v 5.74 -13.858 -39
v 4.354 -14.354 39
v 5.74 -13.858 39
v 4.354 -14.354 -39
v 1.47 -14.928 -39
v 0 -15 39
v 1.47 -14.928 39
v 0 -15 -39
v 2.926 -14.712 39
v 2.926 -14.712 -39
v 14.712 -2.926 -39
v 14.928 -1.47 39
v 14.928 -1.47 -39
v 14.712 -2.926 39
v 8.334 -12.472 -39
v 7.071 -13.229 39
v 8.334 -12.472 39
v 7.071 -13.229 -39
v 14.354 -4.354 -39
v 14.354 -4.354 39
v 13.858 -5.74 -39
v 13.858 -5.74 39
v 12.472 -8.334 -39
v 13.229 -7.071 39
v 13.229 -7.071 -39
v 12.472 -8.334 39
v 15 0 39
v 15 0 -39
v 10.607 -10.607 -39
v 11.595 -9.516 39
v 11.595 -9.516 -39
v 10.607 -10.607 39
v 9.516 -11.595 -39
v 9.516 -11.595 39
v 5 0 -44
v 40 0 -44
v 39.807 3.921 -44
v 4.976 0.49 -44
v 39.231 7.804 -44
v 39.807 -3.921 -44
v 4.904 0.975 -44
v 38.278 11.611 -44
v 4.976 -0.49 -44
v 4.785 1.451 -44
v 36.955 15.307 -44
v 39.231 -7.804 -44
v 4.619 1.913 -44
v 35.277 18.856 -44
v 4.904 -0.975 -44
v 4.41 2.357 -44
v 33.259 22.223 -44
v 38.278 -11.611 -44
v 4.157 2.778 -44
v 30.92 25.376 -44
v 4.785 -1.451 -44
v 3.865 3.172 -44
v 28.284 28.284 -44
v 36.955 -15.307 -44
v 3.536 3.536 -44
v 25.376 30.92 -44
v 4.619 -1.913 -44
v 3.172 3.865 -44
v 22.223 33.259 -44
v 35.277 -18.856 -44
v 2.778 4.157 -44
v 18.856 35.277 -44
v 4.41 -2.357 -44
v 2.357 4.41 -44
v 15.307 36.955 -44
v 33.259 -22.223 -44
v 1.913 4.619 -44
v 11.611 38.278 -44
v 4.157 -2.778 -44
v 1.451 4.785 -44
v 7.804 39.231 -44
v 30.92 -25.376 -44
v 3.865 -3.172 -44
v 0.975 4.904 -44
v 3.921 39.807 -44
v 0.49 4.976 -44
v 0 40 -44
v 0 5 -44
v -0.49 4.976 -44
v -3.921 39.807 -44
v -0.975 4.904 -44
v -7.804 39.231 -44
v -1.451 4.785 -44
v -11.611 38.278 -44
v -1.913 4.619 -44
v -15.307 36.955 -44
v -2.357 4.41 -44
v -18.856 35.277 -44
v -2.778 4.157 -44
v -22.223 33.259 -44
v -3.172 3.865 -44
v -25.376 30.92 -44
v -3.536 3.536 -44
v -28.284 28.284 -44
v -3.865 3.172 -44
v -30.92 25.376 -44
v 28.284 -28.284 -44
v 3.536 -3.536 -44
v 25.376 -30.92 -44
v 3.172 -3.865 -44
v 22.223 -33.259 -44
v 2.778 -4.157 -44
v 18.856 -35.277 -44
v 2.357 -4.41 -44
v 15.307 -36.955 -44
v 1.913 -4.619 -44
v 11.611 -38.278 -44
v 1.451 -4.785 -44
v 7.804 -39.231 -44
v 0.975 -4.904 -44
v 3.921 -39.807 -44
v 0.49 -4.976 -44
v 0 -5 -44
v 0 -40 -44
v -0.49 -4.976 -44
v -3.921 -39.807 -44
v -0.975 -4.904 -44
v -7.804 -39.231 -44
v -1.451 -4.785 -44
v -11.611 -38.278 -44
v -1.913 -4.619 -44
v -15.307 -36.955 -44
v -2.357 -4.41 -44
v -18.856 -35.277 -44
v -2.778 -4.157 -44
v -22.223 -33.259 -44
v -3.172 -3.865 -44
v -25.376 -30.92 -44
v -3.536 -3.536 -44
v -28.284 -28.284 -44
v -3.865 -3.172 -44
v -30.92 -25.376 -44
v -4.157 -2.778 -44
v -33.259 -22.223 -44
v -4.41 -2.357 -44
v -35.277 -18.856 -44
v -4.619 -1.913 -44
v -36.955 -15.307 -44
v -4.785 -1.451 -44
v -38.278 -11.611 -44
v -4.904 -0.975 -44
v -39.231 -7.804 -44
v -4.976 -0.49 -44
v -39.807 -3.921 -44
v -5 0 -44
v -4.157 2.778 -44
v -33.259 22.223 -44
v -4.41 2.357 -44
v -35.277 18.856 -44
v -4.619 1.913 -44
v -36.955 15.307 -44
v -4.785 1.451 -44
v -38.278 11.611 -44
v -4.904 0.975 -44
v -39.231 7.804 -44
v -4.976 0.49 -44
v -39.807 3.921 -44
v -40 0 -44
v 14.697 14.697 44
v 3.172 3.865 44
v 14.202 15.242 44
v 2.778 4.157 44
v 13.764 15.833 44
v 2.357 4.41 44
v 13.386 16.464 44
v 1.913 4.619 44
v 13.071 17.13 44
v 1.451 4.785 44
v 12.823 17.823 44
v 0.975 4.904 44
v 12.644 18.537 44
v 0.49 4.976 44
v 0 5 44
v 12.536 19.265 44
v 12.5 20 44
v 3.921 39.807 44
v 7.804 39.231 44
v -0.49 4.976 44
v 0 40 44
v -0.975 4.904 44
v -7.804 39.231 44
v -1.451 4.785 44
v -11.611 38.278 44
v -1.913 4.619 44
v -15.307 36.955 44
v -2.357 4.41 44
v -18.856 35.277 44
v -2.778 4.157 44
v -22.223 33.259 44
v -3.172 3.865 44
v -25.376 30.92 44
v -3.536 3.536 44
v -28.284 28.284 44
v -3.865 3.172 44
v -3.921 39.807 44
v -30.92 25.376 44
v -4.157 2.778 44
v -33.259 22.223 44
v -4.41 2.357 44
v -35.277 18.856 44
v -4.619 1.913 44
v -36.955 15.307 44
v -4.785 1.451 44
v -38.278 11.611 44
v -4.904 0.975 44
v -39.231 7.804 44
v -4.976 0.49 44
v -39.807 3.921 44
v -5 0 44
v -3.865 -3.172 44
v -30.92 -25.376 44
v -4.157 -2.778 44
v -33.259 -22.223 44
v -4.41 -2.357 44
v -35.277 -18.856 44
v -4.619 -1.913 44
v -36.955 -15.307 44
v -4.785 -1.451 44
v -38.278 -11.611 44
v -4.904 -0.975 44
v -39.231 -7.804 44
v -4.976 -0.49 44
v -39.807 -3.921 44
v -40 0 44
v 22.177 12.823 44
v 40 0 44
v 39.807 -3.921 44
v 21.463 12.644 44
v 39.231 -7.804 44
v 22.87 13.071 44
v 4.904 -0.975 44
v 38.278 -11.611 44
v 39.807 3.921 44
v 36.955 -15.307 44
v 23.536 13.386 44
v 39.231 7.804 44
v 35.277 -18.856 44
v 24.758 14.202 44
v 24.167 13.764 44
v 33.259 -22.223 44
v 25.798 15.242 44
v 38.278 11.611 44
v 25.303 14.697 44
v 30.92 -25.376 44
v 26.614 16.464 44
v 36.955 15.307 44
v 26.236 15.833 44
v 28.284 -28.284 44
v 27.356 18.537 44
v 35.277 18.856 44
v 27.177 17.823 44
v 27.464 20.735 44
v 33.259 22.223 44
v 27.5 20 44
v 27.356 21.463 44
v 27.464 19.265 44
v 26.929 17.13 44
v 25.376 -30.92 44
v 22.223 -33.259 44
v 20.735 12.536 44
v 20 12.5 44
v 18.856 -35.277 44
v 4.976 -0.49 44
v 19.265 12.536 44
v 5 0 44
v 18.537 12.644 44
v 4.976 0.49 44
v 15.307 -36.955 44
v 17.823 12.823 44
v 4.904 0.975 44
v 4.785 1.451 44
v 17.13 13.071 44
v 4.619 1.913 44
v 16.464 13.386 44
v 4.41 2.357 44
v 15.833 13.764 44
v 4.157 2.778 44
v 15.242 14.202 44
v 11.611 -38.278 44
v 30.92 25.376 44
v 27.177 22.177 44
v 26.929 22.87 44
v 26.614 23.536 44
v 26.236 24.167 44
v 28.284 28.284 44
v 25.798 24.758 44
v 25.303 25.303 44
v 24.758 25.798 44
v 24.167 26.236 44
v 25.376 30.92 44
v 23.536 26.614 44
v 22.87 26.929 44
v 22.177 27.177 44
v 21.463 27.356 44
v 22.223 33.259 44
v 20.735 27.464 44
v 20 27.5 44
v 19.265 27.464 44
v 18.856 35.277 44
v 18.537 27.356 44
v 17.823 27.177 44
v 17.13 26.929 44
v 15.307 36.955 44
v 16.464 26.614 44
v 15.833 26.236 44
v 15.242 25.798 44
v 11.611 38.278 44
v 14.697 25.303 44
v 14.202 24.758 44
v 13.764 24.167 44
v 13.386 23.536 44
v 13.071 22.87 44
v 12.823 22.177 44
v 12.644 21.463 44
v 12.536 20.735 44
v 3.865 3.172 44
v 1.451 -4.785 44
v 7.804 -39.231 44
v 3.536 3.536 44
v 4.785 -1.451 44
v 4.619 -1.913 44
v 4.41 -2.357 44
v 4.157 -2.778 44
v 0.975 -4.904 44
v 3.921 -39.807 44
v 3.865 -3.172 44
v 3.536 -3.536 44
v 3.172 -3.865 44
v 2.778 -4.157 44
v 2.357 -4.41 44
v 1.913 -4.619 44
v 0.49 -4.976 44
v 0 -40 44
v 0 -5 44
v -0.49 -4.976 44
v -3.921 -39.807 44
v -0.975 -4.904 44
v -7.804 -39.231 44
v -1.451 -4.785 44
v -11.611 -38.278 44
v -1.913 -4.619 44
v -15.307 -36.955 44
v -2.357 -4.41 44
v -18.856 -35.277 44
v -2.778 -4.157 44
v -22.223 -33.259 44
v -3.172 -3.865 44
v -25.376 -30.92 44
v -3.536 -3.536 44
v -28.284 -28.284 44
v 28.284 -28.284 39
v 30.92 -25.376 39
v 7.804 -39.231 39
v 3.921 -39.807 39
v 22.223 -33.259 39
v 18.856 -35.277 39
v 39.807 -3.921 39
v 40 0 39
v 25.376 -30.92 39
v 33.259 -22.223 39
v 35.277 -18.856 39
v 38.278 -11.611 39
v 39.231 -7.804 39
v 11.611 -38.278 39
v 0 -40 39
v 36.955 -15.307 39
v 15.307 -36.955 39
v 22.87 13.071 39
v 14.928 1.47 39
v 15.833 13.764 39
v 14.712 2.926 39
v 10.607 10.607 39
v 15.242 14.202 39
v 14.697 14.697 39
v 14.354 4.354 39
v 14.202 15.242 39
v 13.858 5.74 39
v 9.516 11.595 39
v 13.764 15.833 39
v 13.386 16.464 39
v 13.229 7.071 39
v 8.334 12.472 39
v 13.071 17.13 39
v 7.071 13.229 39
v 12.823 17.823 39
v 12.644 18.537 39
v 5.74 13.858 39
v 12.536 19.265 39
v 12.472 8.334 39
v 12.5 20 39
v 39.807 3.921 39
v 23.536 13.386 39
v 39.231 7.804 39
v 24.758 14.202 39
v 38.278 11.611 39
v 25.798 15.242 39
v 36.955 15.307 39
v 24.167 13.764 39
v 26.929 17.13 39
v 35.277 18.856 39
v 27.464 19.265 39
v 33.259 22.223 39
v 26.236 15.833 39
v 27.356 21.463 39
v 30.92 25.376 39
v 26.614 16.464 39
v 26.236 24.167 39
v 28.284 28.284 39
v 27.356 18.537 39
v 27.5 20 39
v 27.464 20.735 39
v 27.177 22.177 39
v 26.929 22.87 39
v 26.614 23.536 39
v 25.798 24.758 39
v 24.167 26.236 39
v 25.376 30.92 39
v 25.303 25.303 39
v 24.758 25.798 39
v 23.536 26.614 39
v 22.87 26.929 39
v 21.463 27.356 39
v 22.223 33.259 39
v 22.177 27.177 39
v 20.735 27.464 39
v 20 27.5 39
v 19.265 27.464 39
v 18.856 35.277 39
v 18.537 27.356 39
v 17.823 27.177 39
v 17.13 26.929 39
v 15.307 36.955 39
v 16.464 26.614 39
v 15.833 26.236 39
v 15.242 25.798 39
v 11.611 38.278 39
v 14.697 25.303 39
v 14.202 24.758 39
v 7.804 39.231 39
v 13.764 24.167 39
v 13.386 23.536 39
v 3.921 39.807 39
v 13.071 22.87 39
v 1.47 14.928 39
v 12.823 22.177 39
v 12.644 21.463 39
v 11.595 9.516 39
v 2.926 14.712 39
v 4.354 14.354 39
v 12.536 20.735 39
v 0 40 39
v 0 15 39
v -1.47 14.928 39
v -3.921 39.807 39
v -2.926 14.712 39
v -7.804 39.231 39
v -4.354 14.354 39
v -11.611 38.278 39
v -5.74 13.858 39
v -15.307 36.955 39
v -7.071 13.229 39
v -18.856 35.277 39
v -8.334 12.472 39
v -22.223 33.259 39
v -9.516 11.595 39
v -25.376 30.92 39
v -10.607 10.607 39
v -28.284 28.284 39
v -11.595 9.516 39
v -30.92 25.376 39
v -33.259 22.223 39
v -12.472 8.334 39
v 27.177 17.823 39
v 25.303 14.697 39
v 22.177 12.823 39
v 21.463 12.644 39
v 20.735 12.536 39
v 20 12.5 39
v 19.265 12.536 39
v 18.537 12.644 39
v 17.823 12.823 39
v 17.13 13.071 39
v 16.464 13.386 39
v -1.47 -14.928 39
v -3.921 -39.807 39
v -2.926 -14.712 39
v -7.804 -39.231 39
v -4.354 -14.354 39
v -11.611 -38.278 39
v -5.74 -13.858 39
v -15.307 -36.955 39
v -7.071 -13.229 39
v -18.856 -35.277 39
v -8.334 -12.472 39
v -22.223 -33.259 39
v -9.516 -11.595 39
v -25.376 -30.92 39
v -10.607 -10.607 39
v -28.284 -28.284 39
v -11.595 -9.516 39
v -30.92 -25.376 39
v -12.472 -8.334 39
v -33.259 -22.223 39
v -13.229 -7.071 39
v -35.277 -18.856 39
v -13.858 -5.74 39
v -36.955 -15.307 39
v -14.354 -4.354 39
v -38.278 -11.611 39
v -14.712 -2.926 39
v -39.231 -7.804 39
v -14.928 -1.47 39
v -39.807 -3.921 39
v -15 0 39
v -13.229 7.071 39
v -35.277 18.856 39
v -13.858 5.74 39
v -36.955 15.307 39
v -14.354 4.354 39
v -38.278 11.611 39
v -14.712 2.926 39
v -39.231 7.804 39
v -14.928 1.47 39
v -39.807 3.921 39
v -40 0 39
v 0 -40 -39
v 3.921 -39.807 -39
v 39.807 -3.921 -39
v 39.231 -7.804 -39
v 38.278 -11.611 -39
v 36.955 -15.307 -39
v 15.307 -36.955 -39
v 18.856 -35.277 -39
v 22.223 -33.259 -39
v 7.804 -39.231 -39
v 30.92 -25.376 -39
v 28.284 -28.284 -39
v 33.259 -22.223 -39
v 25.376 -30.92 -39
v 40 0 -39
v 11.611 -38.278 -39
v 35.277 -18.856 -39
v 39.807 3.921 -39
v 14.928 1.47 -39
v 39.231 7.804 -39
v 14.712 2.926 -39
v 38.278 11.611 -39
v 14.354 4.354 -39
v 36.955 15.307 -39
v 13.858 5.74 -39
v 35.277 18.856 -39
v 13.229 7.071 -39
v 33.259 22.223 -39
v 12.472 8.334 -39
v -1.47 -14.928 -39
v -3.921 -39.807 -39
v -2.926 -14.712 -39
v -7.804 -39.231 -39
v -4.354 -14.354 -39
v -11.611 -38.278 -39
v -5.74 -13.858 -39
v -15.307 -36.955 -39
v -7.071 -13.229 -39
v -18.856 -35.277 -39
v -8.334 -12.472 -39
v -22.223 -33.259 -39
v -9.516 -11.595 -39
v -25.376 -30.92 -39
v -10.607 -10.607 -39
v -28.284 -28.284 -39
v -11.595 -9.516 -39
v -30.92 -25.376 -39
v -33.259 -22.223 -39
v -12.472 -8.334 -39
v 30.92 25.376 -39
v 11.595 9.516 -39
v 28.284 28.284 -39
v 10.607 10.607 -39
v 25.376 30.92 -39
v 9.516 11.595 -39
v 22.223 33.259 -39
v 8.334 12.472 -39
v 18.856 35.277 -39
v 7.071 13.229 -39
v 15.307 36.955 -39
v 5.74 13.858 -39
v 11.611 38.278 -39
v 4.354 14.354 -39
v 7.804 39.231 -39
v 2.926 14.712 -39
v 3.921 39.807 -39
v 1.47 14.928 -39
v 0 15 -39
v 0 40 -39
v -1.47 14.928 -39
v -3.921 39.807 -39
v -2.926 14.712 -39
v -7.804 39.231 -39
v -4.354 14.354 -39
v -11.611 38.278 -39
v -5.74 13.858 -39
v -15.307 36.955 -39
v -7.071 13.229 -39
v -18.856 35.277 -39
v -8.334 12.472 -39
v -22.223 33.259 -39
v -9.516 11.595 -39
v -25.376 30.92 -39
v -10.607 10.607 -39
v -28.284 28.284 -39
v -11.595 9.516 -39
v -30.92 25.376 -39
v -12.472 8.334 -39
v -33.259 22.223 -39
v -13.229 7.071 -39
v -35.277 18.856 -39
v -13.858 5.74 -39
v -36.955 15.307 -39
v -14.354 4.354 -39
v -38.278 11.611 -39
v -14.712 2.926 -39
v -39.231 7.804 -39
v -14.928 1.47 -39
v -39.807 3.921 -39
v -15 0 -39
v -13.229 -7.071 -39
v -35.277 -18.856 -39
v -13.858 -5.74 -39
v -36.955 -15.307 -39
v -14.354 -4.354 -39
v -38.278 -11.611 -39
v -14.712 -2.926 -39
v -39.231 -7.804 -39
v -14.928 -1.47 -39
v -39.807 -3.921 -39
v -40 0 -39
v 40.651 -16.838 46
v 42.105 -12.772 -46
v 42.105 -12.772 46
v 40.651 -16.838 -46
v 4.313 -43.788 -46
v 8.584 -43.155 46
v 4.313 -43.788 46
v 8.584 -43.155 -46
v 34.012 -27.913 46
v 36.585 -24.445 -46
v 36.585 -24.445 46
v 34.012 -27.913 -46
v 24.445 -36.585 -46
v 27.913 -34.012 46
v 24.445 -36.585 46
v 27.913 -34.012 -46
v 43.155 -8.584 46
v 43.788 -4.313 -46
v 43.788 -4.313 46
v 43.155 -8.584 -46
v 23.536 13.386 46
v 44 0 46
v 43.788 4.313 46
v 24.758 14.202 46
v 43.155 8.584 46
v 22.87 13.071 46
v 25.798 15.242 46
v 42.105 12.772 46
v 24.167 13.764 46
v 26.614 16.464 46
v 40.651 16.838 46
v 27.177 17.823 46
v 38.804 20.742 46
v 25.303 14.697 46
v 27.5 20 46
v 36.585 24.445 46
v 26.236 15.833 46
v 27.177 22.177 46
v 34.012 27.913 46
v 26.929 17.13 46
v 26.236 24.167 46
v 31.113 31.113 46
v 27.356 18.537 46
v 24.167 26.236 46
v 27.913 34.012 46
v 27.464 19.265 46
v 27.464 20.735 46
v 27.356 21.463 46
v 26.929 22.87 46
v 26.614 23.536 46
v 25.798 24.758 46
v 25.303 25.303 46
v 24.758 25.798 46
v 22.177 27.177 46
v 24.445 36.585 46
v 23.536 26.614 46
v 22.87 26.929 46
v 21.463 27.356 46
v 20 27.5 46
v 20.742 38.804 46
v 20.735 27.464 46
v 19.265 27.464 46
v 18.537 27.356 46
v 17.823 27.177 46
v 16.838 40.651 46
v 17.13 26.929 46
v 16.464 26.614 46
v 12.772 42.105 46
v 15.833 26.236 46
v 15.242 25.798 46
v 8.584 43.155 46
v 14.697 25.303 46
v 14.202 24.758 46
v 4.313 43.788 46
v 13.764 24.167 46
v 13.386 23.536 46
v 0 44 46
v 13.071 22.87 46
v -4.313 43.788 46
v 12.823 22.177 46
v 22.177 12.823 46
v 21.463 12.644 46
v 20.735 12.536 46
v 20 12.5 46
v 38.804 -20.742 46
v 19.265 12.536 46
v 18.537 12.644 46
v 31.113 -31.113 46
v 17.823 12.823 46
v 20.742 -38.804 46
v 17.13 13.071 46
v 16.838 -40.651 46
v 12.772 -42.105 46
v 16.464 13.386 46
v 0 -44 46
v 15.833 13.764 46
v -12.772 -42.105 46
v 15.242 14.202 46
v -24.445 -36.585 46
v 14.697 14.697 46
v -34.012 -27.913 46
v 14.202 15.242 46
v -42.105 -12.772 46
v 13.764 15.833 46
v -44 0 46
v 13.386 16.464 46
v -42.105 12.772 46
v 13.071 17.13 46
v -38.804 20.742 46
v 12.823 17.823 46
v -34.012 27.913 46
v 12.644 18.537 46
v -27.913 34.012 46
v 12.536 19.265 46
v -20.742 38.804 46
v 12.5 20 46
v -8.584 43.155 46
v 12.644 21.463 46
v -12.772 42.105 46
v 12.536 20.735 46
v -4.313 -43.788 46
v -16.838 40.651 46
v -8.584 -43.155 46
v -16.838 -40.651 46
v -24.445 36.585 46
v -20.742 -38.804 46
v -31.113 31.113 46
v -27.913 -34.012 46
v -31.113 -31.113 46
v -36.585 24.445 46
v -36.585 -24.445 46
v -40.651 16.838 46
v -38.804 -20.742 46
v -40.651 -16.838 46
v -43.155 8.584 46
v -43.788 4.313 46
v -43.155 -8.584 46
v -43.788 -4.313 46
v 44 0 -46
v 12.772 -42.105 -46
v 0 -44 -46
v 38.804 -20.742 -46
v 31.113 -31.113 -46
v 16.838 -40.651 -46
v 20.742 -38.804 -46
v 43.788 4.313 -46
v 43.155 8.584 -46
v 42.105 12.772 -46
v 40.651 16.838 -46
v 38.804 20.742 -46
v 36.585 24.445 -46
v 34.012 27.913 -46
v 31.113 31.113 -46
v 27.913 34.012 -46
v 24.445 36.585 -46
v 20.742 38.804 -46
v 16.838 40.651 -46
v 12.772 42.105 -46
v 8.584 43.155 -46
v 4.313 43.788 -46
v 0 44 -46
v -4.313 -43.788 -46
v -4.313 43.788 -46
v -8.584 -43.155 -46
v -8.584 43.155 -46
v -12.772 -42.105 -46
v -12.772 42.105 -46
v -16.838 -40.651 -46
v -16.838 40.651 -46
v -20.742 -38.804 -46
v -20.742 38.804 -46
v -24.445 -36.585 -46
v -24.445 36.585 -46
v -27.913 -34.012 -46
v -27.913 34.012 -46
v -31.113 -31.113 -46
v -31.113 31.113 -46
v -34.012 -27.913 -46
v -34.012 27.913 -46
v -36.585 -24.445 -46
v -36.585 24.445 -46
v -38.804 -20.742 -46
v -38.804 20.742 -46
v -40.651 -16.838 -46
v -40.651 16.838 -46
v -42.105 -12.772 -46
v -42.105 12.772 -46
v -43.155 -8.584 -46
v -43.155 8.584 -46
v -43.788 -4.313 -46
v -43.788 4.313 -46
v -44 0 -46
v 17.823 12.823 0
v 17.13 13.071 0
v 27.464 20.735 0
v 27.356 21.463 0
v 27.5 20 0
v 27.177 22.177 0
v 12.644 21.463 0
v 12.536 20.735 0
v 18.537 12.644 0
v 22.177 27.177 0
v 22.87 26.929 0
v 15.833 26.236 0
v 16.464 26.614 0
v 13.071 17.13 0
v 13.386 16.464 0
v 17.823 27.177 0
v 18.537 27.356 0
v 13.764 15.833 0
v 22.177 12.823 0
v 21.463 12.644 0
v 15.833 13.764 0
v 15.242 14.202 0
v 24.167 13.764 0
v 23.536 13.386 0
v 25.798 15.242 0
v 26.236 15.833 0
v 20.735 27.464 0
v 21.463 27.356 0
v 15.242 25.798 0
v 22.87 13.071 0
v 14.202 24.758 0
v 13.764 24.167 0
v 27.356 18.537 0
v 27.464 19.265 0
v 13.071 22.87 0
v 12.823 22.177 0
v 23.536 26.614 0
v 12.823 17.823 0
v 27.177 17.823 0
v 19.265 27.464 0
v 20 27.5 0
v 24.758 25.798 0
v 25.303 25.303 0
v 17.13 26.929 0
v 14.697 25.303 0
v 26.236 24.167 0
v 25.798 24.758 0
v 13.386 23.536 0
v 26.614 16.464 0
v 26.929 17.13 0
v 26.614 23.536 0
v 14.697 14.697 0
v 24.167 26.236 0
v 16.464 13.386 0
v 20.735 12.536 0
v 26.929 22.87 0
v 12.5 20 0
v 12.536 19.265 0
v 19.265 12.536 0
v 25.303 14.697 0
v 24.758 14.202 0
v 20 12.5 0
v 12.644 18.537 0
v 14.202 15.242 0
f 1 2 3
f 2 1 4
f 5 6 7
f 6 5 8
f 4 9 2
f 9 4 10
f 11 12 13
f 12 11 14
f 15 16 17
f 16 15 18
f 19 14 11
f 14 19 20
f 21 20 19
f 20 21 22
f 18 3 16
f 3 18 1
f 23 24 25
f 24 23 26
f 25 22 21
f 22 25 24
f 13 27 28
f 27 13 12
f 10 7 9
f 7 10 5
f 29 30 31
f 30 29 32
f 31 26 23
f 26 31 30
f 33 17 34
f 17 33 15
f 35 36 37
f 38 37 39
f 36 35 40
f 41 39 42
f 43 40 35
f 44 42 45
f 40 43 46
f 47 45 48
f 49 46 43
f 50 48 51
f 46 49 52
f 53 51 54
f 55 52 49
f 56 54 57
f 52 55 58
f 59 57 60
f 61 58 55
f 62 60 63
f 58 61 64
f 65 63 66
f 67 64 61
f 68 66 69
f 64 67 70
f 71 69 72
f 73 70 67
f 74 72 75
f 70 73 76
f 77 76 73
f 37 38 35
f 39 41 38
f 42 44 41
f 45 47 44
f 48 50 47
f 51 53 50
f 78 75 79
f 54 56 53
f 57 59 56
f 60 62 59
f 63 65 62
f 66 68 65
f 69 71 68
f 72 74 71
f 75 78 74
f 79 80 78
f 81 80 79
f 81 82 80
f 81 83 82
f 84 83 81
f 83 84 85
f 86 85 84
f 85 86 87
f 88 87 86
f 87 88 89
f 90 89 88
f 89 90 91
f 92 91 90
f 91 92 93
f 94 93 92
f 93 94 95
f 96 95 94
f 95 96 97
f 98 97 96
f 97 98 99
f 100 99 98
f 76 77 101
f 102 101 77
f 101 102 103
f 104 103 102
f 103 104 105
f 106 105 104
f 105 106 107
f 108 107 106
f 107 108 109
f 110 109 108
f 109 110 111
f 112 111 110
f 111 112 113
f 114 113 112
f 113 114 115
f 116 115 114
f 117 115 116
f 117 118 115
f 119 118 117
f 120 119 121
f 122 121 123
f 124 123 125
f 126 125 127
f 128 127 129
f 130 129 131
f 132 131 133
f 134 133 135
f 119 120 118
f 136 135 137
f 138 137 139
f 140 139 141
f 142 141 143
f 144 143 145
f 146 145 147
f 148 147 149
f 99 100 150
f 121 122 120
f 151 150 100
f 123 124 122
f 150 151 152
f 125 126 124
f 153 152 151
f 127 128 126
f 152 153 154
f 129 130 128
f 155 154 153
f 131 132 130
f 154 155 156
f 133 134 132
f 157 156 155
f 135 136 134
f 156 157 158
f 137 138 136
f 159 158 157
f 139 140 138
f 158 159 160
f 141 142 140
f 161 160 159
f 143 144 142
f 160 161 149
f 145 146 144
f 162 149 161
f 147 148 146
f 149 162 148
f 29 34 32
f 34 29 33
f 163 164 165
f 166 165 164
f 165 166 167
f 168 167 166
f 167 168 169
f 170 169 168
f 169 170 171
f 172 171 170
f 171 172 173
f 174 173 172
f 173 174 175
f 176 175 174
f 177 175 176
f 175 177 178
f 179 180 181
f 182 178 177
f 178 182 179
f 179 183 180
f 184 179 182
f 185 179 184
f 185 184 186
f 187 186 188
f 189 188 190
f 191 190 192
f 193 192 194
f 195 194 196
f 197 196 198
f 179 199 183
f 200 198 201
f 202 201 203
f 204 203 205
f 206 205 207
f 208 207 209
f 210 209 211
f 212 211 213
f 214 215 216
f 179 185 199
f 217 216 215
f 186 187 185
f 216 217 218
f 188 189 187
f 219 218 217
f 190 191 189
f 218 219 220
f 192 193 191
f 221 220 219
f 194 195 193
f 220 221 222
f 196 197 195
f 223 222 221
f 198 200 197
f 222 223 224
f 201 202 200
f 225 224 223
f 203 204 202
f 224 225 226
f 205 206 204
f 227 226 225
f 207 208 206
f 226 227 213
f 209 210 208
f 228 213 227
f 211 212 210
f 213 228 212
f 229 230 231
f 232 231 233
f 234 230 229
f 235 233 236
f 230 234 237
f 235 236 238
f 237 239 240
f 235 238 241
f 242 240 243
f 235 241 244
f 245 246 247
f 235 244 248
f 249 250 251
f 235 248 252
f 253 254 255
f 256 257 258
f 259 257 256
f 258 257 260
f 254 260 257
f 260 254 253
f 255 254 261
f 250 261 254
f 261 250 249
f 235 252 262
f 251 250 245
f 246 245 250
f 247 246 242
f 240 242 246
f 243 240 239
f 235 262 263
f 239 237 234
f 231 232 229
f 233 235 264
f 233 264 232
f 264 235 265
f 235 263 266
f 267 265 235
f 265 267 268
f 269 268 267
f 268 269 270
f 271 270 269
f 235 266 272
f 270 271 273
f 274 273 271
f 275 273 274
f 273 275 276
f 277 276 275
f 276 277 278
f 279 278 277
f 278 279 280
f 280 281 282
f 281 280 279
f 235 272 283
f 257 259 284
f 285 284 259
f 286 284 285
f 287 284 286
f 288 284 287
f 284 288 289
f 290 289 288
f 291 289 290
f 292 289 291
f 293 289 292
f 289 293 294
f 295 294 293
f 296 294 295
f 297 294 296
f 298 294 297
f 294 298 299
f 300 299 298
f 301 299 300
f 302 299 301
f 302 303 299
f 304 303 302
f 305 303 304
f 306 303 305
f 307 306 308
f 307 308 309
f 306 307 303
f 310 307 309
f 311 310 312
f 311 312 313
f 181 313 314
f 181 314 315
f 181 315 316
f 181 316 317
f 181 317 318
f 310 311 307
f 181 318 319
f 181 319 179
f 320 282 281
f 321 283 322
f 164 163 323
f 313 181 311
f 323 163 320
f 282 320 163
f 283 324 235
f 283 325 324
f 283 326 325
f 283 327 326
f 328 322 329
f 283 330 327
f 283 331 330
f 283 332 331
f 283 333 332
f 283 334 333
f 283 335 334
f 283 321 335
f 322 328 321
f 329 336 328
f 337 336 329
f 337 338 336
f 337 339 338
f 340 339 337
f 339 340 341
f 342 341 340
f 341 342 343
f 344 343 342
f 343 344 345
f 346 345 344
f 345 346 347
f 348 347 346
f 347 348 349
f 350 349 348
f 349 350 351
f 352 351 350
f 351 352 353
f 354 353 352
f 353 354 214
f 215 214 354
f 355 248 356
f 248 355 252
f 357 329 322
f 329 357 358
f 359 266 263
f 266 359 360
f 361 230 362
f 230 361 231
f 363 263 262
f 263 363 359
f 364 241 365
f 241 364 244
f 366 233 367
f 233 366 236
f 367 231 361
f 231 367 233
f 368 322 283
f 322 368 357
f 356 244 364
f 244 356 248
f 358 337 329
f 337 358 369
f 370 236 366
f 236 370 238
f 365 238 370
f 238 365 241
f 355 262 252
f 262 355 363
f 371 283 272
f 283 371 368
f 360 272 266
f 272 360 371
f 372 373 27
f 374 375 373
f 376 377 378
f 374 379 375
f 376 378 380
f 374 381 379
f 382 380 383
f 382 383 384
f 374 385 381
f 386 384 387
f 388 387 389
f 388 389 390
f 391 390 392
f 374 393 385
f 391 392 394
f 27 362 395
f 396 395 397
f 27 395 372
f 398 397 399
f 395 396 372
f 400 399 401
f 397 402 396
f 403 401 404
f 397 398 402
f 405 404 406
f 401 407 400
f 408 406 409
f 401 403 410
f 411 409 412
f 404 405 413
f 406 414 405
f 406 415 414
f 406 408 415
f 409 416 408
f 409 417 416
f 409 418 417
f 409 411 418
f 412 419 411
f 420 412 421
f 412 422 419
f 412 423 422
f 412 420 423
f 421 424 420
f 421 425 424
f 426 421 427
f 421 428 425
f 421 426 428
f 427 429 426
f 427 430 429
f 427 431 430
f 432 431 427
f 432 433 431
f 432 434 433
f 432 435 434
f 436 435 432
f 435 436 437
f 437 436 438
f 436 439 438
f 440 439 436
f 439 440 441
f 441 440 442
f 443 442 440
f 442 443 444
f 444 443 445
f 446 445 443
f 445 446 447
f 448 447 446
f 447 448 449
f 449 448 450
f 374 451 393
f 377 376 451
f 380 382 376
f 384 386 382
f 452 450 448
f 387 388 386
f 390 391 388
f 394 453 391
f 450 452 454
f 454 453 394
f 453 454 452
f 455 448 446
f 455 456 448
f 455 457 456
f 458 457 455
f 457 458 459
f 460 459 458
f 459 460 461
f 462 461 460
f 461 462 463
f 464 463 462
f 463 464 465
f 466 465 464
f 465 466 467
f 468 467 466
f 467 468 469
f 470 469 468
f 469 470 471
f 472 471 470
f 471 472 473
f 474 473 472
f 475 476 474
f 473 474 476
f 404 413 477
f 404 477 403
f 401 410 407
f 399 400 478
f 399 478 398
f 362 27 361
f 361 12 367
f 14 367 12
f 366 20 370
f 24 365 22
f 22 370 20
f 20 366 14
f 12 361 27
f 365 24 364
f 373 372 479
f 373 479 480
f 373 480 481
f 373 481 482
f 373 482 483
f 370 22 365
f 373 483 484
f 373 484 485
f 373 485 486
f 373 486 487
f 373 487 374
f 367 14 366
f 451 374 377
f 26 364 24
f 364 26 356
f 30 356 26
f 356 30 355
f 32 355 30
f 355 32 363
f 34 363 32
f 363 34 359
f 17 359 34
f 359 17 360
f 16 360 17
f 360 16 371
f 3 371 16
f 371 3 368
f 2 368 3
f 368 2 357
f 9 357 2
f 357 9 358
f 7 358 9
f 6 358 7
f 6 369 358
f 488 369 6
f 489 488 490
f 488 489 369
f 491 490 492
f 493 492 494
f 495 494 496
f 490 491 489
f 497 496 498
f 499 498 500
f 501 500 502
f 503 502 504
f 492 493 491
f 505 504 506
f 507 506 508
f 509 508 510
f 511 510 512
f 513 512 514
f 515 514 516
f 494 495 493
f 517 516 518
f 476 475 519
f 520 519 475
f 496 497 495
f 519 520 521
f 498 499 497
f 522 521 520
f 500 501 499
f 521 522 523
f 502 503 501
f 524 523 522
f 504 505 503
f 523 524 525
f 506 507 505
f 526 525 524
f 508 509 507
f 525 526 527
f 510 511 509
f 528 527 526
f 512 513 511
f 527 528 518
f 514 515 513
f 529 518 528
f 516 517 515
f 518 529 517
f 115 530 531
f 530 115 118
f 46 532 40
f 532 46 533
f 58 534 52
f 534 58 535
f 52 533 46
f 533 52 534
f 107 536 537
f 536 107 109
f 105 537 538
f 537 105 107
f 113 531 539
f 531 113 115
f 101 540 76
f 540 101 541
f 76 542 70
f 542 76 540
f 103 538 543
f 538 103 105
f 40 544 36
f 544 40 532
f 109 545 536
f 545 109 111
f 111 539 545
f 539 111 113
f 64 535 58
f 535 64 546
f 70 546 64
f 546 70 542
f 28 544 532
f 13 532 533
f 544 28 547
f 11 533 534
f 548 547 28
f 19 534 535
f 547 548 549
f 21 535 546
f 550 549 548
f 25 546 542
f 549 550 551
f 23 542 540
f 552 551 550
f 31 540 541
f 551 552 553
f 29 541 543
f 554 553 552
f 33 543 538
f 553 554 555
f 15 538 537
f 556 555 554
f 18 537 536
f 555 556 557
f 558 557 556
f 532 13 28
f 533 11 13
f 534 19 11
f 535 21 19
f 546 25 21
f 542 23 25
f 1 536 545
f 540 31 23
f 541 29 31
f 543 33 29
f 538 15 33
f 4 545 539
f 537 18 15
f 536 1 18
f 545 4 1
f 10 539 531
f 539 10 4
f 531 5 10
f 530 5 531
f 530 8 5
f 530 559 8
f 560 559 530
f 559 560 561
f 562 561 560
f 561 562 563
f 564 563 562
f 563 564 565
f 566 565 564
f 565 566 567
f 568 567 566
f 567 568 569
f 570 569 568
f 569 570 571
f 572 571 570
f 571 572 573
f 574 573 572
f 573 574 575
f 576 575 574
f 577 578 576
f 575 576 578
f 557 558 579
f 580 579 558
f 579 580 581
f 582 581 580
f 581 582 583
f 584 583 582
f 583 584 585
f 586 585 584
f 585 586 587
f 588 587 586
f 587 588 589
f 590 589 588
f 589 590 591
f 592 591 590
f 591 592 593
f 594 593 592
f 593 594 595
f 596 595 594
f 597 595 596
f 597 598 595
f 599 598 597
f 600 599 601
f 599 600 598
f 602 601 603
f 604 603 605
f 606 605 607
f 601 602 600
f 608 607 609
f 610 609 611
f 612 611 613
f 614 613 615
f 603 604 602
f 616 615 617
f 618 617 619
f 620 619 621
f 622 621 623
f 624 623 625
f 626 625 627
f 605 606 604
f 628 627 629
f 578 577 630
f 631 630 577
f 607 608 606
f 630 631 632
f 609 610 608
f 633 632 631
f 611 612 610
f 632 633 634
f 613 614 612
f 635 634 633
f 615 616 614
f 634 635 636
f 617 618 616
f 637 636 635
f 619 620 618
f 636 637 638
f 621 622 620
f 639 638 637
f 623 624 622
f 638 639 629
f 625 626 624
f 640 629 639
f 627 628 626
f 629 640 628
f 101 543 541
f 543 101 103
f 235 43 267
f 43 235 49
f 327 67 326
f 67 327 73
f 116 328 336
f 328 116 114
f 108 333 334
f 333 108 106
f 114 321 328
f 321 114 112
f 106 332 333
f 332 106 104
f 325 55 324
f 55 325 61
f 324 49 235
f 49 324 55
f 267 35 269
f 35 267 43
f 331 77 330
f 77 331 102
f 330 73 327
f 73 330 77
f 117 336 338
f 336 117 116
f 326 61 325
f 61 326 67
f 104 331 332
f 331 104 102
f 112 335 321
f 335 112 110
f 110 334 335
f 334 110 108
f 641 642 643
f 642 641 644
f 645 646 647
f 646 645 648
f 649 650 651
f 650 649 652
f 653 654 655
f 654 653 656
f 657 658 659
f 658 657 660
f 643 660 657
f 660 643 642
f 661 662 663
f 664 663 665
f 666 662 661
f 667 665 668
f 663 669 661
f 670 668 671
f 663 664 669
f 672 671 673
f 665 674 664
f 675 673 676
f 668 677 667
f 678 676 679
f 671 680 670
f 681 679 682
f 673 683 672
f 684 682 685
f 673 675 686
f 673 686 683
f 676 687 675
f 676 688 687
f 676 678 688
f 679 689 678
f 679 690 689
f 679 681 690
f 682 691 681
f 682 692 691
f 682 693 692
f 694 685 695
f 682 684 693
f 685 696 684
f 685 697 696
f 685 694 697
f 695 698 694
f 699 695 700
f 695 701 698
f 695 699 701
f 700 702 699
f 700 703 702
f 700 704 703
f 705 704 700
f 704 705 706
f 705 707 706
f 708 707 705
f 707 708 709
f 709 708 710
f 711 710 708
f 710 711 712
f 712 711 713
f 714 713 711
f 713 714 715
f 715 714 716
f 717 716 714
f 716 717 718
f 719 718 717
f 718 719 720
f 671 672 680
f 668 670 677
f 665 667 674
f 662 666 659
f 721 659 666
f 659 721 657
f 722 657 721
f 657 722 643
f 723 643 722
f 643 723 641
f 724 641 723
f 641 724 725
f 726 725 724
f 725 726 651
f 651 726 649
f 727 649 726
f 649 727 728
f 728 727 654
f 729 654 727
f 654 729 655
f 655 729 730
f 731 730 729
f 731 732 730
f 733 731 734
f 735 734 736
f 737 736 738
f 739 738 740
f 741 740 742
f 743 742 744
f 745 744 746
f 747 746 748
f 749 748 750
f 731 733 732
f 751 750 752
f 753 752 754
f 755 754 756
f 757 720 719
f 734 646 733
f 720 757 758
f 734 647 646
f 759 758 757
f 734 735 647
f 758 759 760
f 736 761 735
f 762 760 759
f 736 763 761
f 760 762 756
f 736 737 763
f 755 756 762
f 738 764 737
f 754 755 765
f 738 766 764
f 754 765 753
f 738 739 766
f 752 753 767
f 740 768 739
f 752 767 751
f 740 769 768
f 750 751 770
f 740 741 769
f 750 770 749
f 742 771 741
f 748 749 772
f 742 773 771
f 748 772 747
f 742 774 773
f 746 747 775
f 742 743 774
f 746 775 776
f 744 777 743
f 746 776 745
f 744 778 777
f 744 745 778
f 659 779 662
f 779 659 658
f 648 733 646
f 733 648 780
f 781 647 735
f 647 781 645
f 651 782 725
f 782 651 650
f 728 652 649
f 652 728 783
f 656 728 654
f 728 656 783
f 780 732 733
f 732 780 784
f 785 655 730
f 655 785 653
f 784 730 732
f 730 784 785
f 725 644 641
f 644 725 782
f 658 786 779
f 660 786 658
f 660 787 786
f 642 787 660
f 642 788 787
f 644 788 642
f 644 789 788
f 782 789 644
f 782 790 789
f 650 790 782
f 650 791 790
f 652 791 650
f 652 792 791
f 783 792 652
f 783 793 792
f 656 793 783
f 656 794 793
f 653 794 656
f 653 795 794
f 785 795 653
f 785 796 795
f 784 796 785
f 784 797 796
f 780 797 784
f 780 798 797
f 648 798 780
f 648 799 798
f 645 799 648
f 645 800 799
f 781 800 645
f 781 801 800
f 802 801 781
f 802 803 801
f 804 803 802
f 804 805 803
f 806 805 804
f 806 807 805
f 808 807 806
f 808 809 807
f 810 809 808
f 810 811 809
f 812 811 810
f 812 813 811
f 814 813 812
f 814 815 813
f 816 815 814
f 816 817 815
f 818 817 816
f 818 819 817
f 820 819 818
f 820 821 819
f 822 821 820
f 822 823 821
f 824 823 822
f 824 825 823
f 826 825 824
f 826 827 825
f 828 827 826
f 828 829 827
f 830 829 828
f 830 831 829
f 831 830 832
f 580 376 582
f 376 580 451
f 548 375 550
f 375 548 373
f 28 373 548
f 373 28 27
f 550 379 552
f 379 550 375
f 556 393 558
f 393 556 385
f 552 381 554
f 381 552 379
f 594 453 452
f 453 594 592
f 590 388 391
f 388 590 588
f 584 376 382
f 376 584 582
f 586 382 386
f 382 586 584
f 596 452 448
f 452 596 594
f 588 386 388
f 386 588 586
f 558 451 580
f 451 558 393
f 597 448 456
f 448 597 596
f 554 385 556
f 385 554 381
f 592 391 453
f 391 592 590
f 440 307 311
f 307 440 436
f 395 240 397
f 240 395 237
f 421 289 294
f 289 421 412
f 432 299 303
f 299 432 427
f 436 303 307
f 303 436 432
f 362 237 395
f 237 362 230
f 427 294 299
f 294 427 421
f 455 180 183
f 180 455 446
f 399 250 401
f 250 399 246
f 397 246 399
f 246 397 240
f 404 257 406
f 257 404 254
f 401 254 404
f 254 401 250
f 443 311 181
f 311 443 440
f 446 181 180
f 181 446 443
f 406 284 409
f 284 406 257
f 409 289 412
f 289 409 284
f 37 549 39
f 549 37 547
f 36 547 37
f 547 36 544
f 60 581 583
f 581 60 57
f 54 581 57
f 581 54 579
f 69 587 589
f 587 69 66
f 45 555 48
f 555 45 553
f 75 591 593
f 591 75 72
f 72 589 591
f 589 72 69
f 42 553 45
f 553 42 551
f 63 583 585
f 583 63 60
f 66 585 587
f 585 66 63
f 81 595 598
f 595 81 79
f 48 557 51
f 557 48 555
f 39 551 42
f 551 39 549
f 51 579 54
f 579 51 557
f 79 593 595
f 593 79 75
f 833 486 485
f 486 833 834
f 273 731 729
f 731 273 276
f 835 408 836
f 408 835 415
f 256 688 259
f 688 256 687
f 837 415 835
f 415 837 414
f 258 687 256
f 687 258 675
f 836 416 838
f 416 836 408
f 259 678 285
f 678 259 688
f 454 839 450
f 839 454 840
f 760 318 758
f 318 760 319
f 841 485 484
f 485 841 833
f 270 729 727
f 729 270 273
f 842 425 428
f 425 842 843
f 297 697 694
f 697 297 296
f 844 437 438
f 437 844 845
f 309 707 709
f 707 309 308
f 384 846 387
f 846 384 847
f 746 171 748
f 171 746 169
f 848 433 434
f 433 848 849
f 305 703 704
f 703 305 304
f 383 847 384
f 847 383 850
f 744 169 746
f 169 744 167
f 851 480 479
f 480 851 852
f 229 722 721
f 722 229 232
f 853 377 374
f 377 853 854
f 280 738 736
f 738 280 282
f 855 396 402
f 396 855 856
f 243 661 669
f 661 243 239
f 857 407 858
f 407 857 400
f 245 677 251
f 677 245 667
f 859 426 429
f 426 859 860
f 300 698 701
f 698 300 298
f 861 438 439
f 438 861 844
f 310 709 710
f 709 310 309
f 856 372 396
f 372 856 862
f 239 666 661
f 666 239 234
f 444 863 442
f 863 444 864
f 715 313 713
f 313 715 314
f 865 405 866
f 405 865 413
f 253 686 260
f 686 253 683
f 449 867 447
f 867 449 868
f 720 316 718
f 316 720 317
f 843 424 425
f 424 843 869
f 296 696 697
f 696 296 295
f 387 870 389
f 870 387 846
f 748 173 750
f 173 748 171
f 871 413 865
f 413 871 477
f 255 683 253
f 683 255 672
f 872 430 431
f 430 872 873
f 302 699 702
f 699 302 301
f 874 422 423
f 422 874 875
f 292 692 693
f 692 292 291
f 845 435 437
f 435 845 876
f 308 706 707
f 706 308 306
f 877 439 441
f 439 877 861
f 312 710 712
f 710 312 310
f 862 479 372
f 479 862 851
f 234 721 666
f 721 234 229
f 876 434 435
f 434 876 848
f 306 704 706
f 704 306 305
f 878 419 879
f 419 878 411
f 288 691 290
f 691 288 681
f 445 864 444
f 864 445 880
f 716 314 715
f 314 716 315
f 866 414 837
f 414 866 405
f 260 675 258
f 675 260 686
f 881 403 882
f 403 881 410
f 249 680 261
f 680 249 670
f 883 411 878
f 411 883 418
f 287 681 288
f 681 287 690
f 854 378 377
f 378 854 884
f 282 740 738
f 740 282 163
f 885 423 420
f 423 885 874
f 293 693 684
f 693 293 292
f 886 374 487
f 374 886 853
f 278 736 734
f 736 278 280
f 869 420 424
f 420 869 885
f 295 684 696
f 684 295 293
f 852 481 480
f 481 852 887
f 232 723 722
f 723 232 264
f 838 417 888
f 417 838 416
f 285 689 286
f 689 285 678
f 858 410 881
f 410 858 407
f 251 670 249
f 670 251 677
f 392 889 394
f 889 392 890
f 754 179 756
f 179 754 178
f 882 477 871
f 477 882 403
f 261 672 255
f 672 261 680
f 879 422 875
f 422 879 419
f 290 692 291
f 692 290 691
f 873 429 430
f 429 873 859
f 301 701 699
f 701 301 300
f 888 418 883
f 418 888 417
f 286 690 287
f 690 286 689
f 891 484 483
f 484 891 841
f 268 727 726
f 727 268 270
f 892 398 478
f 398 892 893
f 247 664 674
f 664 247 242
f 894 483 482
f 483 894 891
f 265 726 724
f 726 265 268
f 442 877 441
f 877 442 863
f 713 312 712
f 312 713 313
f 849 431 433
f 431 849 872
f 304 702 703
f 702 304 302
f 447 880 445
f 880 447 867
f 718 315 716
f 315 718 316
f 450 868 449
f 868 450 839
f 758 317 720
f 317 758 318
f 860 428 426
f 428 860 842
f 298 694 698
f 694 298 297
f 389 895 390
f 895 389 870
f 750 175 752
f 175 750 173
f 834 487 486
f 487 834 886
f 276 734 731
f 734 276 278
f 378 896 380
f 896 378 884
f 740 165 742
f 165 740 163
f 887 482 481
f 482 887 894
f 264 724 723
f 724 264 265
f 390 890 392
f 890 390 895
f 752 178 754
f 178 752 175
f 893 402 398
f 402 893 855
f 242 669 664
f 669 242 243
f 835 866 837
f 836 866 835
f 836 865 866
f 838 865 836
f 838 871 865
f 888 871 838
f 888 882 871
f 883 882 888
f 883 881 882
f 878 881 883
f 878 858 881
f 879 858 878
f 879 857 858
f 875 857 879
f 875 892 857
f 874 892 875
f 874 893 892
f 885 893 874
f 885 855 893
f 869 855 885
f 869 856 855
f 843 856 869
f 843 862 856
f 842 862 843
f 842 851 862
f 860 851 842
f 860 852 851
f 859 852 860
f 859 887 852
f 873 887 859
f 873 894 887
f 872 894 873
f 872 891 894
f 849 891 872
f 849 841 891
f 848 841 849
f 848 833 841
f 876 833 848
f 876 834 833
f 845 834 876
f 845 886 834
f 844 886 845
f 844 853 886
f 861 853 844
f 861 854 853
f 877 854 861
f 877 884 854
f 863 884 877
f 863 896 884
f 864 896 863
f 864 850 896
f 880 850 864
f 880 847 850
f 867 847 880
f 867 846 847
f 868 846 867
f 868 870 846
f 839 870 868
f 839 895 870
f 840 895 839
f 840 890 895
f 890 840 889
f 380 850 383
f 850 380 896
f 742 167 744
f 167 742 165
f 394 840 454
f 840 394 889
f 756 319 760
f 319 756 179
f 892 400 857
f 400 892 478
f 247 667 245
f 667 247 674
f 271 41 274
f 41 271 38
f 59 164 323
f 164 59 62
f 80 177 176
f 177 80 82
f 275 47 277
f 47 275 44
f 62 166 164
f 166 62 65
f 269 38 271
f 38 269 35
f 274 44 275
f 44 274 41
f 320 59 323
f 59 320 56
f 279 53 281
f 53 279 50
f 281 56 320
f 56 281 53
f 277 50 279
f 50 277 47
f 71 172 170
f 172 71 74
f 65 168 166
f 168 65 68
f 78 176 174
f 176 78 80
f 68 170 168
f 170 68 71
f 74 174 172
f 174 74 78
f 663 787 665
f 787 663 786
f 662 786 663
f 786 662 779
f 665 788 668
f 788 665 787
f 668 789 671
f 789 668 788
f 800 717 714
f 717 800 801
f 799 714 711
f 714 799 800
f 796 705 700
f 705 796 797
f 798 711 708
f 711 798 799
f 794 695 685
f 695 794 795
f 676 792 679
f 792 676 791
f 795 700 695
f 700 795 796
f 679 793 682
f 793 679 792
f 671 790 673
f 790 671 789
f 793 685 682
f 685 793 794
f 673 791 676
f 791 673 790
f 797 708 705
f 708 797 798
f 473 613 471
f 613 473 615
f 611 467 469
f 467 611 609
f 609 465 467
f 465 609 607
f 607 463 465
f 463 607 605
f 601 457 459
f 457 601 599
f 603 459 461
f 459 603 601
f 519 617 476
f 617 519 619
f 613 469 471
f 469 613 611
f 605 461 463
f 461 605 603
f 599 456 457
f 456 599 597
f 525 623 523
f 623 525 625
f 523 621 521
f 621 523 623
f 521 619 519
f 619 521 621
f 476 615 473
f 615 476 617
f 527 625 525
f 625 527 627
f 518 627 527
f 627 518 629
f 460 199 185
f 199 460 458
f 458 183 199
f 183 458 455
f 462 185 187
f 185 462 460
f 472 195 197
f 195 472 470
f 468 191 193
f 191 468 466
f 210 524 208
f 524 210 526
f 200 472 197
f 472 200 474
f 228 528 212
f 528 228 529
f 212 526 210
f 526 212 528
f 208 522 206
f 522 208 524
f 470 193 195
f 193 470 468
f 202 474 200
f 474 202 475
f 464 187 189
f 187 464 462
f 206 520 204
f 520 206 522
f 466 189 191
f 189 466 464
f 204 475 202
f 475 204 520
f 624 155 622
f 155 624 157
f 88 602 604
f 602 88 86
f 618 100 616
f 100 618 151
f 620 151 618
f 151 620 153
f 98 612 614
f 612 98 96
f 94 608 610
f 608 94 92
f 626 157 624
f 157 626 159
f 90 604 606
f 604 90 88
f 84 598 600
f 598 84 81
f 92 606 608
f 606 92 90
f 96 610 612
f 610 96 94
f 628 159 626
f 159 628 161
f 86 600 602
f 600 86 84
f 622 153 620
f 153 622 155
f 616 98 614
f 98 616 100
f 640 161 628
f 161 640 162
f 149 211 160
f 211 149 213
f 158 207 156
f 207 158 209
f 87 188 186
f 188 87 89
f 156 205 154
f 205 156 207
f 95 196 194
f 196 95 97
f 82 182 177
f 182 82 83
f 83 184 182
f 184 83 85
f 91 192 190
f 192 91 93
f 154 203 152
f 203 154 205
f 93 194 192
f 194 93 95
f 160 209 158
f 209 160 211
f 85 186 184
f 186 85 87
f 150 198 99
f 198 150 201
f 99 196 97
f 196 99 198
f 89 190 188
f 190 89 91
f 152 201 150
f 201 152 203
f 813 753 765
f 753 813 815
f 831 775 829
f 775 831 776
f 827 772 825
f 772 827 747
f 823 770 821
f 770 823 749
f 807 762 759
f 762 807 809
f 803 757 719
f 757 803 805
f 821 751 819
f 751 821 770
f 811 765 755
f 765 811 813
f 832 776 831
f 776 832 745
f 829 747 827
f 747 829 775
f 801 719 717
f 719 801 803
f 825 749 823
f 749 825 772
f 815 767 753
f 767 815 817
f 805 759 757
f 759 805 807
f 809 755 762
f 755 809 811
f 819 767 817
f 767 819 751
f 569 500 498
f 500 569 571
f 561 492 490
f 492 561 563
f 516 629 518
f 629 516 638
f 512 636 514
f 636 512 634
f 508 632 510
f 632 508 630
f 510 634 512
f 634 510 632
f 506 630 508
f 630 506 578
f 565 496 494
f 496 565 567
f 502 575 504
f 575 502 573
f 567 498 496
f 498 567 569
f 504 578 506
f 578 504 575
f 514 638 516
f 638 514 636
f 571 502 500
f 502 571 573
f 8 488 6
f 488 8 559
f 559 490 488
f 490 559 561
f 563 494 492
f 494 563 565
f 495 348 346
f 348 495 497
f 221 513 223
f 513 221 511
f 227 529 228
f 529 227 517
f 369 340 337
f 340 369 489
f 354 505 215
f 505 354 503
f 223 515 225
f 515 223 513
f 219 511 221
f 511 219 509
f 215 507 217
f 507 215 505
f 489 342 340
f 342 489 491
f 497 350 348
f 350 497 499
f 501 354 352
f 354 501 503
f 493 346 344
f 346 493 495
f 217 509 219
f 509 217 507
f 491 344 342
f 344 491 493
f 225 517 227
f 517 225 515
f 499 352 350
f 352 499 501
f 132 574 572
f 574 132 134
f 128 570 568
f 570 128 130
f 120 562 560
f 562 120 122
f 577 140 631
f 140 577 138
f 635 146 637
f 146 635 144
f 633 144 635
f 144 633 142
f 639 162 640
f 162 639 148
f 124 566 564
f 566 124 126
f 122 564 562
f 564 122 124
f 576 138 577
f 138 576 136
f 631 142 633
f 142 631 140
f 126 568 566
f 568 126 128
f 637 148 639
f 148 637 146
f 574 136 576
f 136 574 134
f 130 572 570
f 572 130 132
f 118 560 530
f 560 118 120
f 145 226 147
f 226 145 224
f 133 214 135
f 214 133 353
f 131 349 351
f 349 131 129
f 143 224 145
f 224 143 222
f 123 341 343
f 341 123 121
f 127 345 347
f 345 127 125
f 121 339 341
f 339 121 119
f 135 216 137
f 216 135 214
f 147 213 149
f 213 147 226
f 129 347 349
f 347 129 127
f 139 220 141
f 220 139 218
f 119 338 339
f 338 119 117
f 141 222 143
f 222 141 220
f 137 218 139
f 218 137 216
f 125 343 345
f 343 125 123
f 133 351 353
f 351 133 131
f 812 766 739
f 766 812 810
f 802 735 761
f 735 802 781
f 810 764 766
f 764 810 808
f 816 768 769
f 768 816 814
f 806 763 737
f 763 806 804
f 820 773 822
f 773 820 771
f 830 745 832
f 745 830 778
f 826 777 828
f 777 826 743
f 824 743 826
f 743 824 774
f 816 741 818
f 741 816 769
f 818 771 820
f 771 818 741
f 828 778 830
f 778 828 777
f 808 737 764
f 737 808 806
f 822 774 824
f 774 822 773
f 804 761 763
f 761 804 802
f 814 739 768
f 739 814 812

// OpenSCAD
// Default external parameters (override via Customizer or -D on the CLI)
wheelRadius = 40;
wheelHeight = 5;
overallHeight = 88;
wholeThickness = 5;
wallThickness = 2;
shaftRadius = 15;

// Tessellation: 1000 is print-smooth but makes CGAL STL export very slow.
// export.sh defaults to 64; raise with ./export.sh --fn 128 stl
fn = 64;

// Max quarter separation at full open (animation peak / GUI animate)
maxSep = 20;

// Internal parameters
cutOverlap = 5;

// $t in [0, 1]: closed → open → closed (triangle wave).
// $t=0 and $t=1: sep=0 (closed). $t=0.5: sep=maxSep (fully open).
// Works with View → Animate in the GUI and with export.sh anim.
function mold_sep(t) = maxSep * (1 - abs(2 * t - 1));


module positive(wheelRadius)
{
    difference() {
        union() {
            // shaft
            translate([0, 0, -overallHeight / 2])
                cylinder(overallHeight, shaftRadius, shaftRadius, $fn = fn);

            // wheels
            translate([0, 0, overallHeight / 2 - wheelHeight])
                cylinder(wheelHeight, wheelRadius, wheelRadius, $fn = fn);
            translate([0, 0, -overallHeight / 2])
                cylinder(wheelHeight, wheelRadius, wheelRadius, $fn = fn);

            // inlet
            translate([wheelRadius / 2, wheelRadius / 2, 0])
                cylinder(50, shaftRadius / 2, shaftRadius / 2, $fn = fn);
        }
        // hole
        translate([0, 0, -overallHeight / 2 - cutOverlap])
            cylinder(overallHeight + 2 * cutOverlap, wholeThickness, wholeThickness, $fn = fn);
    }
}

module mold(wheelRadius)
{
    difference() {
        translate([0, 0, -overallHeight / 2 - wallThickness])
            cylinder(
                overallHeight + 2 * wallThickness,
                wheelRadius + 2 * wallThickness,
                wheelRadius + 2 * wallThickness,
                $fn = fn
            );
        positive(wheelRadius);
    }
}

module cut(displacement, rotation, wheelRadius)
{
    translate([displacement, 0, 0]) {
        rotate([0, 0, rotation]) {
            difference() {
                mold(wheelRadius);
                translate([
                    0,
                    -(wheelRadius + wallThickness + cutOverlap),
                    -(overallHeight / 2 + wallThickness + cutOverlap)
                ])
                    cube(size = [
                        wheelRadius * 2 + 2 * wallThickness + 2 * cutOverlap,
                        wheelRadius * 2 + 2 * wallThickness + 2 * cutOverlap,
                        overallHeight + 2 * wallThickness + 2 * cutOverlap
                    ], center = false);
            }
        }
    }
}

module cut2(wheelRadius)
{
    d = wheelRadius + wallThickness + cutOverlap;
    z = overallHeight / 2 + wallThickness + cutOverlap;
    o = overallHeight + 2 * wallThickness + 2 * cutOverlap;
    sep = mold_sep($t);
    c = false;

    translate([sep, -sep, 0])
    intersection() {
        mold(wheelRadius);
        translate([0, -d, -z])
            cube(size = [d, d, o], center = c);
    }
    translate([sep, sep, 0])
    intersection() {
        mold(wheelRadius);
        translate([0, 0, -z])
            cube(size = [d, d, o], center = c);
    }
    translate([-sep, sep, 0])
    intersection() {
        mold(wheelRadius);
        translate([-d, 0, -z])
            cube(size = [d, d, o], center = c);
    }
    translate([-sep, -sep, 0])
    intersection() {
        mold(wheelRadius);
        translate([-d, -d, -z])
            cube(size = [d, d, o], center = c);
    }
}

module theThing(wheelRadius)
{
    cut2(wheelRadius);
}

theThing(wheelRadius);
